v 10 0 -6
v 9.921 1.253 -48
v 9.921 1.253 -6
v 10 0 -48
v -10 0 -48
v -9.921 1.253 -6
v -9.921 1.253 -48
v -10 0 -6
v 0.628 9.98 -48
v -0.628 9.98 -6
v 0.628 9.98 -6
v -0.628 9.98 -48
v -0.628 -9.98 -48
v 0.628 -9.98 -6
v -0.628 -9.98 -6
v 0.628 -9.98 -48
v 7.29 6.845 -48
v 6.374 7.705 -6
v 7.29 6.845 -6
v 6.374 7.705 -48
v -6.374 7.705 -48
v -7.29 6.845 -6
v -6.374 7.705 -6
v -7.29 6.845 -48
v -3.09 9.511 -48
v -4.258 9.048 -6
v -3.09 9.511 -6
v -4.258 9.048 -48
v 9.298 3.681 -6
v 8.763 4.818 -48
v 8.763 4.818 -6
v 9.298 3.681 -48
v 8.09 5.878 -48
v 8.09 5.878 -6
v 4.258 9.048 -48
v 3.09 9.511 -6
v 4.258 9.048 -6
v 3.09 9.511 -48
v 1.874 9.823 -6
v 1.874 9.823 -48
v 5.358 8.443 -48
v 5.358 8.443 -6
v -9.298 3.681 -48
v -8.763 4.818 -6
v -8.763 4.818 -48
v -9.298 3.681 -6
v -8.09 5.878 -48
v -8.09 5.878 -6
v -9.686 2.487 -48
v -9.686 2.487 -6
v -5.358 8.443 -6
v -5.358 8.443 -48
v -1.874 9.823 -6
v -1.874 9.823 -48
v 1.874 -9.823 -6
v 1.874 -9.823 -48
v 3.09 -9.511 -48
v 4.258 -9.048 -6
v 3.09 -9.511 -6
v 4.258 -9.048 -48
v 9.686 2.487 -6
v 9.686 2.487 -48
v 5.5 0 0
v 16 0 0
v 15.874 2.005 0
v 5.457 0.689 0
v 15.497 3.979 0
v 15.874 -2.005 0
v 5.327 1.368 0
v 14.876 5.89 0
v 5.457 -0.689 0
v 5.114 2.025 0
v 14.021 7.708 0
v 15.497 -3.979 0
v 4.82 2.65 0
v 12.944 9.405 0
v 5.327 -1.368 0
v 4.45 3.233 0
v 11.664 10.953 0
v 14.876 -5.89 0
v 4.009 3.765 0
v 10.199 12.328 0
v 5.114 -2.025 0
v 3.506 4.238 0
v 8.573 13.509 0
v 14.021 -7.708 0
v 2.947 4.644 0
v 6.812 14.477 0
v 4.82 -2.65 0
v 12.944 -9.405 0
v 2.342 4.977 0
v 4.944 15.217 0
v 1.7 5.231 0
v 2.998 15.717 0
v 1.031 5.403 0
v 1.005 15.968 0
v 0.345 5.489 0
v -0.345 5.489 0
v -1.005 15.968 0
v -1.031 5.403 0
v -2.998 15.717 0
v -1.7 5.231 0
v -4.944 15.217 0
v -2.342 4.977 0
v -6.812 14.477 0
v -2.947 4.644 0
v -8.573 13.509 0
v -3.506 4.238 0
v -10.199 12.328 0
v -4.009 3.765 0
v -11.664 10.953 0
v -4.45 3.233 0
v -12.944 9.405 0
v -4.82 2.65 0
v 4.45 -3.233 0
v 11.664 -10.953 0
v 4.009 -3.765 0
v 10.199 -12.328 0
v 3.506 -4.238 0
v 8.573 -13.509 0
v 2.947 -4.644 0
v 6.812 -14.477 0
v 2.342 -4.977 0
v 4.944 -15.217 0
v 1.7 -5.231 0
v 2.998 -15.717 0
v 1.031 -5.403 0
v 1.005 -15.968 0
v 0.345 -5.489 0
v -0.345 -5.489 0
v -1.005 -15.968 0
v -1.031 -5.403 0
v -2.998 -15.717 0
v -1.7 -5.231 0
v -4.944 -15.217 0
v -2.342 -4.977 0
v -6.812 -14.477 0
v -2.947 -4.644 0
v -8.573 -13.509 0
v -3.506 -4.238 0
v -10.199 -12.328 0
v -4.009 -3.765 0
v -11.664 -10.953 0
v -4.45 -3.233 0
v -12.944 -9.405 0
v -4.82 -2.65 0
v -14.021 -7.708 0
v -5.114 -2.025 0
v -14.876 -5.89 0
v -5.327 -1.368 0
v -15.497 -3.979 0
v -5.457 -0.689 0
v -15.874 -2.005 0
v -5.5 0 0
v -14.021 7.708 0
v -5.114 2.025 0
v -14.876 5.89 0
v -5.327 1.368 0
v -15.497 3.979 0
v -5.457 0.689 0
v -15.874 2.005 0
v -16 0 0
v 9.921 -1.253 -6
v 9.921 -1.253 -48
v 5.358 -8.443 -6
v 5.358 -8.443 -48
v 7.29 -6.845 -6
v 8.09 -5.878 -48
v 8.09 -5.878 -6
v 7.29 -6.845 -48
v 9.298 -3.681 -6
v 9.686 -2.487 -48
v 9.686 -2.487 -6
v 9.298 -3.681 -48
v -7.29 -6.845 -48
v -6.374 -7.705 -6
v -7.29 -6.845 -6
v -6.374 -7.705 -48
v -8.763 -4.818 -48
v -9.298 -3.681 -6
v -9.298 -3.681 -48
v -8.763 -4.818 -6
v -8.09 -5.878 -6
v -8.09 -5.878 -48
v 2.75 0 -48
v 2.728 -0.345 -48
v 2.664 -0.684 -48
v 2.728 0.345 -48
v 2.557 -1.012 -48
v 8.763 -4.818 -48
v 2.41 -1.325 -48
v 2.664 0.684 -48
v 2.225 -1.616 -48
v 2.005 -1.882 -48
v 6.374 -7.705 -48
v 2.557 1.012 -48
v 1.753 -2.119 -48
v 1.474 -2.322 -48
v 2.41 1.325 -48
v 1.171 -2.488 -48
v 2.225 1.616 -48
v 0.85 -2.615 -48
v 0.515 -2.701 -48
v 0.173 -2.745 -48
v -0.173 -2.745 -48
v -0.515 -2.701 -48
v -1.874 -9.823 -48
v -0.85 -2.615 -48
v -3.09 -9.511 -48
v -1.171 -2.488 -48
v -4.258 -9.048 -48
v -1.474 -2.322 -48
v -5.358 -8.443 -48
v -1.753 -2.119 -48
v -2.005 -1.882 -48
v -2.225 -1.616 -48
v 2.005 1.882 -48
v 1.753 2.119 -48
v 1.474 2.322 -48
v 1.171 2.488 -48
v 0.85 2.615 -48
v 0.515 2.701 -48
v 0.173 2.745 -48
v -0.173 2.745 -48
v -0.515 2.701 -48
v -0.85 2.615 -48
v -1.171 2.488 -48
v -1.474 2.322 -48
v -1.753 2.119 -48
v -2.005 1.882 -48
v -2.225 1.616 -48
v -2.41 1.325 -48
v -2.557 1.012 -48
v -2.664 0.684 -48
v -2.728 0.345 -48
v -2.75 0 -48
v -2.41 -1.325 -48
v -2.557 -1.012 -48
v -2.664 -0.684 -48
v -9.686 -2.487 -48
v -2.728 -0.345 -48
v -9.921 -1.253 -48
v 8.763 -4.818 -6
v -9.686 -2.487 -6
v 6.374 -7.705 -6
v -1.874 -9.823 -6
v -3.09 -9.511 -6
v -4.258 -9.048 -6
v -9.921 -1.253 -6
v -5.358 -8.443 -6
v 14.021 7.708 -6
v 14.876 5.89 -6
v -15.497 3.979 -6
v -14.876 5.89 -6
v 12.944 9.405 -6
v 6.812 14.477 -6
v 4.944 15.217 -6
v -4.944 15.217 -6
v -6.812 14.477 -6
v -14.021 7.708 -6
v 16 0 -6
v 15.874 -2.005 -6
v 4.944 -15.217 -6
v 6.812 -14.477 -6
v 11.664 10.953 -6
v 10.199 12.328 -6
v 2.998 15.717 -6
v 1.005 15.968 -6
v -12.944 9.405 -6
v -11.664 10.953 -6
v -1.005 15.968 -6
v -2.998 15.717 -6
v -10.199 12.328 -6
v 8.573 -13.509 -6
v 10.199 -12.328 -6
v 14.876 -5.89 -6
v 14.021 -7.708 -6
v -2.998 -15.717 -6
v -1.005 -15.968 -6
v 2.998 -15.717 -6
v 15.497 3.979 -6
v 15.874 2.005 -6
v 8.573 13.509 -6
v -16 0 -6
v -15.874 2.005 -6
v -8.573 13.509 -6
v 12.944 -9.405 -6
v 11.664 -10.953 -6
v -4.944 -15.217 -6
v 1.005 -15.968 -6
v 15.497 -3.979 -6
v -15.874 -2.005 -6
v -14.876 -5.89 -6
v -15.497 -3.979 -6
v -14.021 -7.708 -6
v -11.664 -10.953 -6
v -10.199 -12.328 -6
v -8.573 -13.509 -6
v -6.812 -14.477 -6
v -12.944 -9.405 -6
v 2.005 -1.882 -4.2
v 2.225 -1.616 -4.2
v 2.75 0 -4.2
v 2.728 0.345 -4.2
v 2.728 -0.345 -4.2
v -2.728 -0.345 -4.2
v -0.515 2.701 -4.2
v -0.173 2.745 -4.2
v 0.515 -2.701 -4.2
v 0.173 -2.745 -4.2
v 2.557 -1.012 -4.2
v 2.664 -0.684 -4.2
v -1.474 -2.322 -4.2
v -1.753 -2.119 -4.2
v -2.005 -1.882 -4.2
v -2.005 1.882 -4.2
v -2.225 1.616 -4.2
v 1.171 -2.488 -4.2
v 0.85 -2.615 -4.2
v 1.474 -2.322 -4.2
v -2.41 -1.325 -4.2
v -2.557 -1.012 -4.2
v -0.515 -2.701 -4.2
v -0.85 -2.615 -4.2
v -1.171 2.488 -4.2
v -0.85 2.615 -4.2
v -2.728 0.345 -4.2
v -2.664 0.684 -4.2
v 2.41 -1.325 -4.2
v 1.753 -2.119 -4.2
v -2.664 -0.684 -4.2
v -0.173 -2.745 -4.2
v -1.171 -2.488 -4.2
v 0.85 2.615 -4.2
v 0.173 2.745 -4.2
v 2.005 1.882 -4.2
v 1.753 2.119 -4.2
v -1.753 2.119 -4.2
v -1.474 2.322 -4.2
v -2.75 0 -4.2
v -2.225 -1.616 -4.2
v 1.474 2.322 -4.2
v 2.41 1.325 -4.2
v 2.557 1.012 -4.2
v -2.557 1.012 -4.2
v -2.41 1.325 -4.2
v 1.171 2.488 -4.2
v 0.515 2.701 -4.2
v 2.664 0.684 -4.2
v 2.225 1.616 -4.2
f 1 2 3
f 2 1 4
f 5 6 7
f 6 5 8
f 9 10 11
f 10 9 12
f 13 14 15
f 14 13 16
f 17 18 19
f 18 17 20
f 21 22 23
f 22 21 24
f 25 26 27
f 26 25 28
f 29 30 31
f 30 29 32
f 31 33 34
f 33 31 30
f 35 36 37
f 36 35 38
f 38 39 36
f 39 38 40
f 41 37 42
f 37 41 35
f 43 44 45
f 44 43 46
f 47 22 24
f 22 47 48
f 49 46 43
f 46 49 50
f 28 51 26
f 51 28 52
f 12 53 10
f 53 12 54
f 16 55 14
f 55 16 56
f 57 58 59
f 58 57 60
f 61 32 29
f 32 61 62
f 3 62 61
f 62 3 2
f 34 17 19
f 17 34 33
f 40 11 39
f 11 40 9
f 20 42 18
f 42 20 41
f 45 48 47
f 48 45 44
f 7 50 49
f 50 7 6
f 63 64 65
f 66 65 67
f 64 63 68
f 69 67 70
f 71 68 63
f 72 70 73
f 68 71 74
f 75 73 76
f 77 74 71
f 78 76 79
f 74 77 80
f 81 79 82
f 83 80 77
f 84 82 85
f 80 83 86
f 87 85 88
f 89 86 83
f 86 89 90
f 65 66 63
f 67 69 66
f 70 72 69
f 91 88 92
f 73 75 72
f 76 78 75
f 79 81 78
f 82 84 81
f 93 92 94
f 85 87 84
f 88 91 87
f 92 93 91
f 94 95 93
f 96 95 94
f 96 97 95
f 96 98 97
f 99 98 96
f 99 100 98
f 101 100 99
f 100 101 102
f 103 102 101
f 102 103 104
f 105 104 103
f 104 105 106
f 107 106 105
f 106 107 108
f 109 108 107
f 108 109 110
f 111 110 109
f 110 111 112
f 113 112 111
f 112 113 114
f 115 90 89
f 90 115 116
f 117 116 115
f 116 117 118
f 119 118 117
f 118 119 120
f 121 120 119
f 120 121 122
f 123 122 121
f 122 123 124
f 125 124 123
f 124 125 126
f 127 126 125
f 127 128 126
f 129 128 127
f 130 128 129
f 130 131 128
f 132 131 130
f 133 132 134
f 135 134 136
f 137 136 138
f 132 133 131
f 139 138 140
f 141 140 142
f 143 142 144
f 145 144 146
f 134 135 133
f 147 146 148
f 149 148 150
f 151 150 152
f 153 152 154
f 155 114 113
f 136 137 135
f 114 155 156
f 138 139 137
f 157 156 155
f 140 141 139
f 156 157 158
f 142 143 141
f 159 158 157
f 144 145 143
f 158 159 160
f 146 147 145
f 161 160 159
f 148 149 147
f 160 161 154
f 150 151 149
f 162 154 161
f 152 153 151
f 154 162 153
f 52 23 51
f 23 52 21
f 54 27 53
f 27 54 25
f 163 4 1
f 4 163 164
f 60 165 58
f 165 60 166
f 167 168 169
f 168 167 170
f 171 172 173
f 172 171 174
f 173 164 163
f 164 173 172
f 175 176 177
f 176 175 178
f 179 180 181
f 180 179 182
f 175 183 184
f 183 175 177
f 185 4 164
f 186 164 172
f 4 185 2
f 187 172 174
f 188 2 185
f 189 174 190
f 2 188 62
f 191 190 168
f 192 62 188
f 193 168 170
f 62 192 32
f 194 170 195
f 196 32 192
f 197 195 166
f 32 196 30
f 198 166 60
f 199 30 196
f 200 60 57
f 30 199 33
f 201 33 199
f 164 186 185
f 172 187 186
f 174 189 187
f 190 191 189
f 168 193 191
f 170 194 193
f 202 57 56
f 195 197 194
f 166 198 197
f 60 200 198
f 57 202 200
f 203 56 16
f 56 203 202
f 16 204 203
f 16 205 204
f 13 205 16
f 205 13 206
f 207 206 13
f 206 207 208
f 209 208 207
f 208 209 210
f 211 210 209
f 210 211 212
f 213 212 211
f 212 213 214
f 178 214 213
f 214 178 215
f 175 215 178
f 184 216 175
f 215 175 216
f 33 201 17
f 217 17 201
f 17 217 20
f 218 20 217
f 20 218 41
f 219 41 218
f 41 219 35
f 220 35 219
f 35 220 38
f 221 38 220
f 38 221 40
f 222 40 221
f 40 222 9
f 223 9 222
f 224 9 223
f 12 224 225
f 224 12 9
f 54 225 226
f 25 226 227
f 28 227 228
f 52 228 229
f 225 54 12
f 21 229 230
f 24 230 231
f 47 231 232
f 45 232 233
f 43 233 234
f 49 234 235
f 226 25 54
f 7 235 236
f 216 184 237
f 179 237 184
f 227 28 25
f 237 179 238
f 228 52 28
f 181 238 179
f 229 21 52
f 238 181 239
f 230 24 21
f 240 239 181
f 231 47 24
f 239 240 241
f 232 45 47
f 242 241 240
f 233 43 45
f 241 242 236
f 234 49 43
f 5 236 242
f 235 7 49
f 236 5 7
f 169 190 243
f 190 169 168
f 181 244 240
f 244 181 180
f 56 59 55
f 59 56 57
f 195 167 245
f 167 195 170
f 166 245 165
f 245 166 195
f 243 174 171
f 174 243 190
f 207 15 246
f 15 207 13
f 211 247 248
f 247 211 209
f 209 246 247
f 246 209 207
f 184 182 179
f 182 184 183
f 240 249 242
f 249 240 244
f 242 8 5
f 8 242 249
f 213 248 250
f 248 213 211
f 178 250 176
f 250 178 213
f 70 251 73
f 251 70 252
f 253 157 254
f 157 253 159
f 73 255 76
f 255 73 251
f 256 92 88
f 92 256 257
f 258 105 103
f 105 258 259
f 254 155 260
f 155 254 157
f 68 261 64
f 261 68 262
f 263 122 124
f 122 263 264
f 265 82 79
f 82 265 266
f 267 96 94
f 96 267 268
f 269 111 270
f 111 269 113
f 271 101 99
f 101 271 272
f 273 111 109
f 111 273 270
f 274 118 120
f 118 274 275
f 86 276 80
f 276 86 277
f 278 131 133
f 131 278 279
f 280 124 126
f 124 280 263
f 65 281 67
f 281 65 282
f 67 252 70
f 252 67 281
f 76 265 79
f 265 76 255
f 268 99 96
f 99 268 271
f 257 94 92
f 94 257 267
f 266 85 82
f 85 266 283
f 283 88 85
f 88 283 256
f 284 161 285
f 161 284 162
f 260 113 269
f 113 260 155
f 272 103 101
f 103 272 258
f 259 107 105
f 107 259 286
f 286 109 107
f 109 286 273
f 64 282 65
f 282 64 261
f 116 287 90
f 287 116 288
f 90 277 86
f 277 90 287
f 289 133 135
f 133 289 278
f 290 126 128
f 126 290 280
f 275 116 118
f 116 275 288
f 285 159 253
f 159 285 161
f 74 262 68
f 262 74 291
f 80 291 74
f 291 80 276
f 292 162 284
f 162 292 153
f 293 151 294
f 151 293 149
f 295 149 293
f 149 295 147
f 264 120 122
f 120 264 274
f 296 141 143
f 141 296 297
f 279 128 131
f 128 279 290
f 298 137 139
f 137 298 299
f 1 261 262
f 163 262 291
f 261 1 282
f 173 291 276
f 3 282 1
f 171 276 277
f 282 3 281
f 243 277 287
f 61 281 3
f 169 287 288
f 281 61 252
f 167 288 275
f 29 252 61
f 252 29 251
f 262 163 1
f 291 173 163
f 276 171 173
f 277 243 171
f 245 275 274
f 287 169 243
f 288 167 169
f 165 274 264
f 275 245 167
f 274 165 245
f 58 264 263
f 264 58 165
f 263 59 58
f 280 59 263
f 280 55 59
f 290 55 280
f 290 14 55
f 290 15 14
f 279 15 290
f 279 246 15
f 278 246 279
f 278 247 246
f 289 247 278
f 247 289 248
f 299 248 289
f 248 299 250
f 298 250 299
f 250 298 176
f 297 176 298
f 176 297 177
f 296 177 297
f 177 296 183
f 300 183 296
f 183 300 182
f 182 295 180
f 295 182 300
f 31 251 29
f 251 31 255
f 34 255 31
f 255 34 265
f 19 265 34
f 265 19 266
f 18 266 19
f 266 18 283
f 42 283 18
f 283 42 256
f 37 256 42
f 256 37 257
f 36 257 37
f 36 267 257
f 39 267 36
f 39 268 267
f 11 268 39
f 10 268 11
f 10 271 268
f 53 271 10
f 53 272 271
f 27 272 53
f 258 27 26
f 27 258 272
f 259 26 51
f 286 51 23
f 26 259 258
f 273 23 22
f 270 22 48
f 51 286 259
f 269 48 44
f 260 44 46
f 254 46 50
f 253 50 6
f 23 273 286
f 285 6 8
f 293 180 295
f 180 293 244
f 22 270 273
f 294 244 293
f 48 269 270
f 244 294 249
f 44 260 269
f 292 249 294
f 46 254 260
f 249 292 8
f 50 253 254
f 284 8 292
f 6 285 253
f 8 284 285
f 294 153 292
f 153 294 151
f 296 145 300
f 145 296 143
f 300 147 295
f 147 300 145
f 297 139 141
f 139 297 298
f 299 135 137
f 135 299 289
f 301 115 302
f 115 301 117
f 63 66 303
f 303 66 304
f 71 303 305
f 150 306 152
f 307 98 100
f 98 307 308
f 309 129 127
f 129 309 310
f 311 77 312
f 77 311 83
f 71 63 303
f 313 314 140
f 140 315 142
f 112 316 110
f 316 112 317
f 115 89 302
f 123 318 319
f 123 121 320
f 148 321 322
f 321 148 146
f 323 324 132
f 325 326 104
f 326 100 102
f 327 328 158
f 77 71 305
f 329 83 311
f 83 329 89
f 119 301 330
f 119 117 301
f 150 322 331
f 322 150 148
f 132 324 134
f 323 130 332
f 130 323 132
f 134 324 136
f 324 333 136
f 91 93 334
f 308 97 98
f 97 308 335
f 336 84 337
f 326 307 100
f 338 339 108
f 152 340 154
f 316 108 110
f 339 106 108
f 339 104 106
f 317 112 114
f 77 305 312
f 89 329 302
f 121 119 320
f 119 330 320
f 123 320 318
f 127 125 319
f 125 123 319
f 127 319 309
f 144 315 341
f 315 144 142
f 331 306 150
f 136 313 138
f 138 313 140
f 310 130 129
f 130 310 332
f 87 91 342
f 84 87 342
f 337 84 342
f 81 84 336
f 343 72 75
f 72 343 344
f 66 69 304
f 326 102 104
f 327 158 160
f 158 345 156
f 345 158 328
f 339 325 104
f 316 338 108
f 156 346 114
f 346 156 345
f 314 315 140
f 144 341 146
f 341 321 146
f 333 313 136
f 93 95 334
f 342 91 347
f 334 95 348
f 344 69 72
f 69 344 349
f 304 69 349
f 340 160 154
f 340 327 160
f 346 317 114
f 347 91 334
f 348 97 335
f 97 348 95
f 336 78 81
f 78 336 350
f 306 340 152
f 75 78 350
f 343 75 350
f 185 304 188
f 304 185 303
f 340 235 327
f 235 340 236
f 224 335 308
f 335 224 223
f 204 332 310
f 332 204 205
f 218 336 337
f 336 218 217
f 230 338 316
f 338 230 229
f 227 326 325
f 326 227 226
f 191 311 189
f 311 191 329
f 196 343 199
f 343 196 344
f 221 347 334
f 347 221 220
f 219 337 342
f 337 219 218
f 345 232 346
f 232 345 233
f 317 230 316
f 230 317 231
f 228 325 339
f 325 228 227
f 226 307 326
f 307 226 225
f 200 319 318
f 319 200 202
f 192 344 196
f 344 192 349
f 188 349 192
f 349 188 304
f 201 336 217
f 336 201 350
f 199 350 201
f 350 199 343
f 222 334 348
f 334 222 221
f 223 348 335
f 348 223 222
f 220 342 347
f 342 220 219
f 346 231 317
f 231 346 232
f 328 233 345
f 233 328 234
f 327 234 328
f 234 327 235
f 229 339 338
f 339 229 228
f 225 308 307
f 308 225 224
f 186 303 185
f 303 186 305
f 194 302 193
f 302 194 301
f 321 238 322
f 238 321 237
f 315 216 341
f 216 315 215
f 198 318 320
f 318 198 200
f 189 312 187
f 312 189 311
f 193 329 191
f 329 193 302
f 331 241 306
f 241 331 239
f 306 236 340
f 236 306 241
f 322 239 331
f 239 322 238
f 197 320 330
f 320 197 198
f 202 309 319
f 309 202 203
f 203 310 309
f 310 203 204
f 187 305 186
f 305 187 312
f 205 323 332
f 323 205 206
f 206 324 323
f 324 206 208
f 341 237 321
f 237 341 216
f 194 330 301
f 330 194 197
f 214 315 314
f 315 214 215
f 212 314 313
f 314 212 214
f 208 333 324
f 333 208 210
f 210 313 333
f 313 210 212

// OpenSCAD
$fn = 50;


difference() {
	union() {
		translate(v = [0, 0, -48.0000000000]) {
			cylinder(h = 48, r = 10.0000000000);
		}
		translate(v = [0, 0, -6.0000000000]) {
			cylinder(h = 6, r = 16.0000000000);
		}
	}
	union() {
		translate(v = [0, 0, 0]) {
			rotate(a = [0, 0, 0]) {
				difference() {
					union() {
						#translate(v = [0, 0, -48.0000000000]) {
							cylinder(h = 48, r = 2.2500000000);
						}
						#translate(v = [0, 0, -4.2000000000]) {
							cylinder(h = 4.2000000000, r1 = 2.7500000000, r2 = 5.5000000000);
						}
						#translate(v = [0, 0, -48.0000000000]) {
							cylinder(h = 48, r = 2.7500000000);
						}
						#translate(v = [0, 0, -48.0000000000]) {
							cylinder(h = 48, r = 2.2500000000);
						}
					}
					union();
				}
			}
		}
	}
}
